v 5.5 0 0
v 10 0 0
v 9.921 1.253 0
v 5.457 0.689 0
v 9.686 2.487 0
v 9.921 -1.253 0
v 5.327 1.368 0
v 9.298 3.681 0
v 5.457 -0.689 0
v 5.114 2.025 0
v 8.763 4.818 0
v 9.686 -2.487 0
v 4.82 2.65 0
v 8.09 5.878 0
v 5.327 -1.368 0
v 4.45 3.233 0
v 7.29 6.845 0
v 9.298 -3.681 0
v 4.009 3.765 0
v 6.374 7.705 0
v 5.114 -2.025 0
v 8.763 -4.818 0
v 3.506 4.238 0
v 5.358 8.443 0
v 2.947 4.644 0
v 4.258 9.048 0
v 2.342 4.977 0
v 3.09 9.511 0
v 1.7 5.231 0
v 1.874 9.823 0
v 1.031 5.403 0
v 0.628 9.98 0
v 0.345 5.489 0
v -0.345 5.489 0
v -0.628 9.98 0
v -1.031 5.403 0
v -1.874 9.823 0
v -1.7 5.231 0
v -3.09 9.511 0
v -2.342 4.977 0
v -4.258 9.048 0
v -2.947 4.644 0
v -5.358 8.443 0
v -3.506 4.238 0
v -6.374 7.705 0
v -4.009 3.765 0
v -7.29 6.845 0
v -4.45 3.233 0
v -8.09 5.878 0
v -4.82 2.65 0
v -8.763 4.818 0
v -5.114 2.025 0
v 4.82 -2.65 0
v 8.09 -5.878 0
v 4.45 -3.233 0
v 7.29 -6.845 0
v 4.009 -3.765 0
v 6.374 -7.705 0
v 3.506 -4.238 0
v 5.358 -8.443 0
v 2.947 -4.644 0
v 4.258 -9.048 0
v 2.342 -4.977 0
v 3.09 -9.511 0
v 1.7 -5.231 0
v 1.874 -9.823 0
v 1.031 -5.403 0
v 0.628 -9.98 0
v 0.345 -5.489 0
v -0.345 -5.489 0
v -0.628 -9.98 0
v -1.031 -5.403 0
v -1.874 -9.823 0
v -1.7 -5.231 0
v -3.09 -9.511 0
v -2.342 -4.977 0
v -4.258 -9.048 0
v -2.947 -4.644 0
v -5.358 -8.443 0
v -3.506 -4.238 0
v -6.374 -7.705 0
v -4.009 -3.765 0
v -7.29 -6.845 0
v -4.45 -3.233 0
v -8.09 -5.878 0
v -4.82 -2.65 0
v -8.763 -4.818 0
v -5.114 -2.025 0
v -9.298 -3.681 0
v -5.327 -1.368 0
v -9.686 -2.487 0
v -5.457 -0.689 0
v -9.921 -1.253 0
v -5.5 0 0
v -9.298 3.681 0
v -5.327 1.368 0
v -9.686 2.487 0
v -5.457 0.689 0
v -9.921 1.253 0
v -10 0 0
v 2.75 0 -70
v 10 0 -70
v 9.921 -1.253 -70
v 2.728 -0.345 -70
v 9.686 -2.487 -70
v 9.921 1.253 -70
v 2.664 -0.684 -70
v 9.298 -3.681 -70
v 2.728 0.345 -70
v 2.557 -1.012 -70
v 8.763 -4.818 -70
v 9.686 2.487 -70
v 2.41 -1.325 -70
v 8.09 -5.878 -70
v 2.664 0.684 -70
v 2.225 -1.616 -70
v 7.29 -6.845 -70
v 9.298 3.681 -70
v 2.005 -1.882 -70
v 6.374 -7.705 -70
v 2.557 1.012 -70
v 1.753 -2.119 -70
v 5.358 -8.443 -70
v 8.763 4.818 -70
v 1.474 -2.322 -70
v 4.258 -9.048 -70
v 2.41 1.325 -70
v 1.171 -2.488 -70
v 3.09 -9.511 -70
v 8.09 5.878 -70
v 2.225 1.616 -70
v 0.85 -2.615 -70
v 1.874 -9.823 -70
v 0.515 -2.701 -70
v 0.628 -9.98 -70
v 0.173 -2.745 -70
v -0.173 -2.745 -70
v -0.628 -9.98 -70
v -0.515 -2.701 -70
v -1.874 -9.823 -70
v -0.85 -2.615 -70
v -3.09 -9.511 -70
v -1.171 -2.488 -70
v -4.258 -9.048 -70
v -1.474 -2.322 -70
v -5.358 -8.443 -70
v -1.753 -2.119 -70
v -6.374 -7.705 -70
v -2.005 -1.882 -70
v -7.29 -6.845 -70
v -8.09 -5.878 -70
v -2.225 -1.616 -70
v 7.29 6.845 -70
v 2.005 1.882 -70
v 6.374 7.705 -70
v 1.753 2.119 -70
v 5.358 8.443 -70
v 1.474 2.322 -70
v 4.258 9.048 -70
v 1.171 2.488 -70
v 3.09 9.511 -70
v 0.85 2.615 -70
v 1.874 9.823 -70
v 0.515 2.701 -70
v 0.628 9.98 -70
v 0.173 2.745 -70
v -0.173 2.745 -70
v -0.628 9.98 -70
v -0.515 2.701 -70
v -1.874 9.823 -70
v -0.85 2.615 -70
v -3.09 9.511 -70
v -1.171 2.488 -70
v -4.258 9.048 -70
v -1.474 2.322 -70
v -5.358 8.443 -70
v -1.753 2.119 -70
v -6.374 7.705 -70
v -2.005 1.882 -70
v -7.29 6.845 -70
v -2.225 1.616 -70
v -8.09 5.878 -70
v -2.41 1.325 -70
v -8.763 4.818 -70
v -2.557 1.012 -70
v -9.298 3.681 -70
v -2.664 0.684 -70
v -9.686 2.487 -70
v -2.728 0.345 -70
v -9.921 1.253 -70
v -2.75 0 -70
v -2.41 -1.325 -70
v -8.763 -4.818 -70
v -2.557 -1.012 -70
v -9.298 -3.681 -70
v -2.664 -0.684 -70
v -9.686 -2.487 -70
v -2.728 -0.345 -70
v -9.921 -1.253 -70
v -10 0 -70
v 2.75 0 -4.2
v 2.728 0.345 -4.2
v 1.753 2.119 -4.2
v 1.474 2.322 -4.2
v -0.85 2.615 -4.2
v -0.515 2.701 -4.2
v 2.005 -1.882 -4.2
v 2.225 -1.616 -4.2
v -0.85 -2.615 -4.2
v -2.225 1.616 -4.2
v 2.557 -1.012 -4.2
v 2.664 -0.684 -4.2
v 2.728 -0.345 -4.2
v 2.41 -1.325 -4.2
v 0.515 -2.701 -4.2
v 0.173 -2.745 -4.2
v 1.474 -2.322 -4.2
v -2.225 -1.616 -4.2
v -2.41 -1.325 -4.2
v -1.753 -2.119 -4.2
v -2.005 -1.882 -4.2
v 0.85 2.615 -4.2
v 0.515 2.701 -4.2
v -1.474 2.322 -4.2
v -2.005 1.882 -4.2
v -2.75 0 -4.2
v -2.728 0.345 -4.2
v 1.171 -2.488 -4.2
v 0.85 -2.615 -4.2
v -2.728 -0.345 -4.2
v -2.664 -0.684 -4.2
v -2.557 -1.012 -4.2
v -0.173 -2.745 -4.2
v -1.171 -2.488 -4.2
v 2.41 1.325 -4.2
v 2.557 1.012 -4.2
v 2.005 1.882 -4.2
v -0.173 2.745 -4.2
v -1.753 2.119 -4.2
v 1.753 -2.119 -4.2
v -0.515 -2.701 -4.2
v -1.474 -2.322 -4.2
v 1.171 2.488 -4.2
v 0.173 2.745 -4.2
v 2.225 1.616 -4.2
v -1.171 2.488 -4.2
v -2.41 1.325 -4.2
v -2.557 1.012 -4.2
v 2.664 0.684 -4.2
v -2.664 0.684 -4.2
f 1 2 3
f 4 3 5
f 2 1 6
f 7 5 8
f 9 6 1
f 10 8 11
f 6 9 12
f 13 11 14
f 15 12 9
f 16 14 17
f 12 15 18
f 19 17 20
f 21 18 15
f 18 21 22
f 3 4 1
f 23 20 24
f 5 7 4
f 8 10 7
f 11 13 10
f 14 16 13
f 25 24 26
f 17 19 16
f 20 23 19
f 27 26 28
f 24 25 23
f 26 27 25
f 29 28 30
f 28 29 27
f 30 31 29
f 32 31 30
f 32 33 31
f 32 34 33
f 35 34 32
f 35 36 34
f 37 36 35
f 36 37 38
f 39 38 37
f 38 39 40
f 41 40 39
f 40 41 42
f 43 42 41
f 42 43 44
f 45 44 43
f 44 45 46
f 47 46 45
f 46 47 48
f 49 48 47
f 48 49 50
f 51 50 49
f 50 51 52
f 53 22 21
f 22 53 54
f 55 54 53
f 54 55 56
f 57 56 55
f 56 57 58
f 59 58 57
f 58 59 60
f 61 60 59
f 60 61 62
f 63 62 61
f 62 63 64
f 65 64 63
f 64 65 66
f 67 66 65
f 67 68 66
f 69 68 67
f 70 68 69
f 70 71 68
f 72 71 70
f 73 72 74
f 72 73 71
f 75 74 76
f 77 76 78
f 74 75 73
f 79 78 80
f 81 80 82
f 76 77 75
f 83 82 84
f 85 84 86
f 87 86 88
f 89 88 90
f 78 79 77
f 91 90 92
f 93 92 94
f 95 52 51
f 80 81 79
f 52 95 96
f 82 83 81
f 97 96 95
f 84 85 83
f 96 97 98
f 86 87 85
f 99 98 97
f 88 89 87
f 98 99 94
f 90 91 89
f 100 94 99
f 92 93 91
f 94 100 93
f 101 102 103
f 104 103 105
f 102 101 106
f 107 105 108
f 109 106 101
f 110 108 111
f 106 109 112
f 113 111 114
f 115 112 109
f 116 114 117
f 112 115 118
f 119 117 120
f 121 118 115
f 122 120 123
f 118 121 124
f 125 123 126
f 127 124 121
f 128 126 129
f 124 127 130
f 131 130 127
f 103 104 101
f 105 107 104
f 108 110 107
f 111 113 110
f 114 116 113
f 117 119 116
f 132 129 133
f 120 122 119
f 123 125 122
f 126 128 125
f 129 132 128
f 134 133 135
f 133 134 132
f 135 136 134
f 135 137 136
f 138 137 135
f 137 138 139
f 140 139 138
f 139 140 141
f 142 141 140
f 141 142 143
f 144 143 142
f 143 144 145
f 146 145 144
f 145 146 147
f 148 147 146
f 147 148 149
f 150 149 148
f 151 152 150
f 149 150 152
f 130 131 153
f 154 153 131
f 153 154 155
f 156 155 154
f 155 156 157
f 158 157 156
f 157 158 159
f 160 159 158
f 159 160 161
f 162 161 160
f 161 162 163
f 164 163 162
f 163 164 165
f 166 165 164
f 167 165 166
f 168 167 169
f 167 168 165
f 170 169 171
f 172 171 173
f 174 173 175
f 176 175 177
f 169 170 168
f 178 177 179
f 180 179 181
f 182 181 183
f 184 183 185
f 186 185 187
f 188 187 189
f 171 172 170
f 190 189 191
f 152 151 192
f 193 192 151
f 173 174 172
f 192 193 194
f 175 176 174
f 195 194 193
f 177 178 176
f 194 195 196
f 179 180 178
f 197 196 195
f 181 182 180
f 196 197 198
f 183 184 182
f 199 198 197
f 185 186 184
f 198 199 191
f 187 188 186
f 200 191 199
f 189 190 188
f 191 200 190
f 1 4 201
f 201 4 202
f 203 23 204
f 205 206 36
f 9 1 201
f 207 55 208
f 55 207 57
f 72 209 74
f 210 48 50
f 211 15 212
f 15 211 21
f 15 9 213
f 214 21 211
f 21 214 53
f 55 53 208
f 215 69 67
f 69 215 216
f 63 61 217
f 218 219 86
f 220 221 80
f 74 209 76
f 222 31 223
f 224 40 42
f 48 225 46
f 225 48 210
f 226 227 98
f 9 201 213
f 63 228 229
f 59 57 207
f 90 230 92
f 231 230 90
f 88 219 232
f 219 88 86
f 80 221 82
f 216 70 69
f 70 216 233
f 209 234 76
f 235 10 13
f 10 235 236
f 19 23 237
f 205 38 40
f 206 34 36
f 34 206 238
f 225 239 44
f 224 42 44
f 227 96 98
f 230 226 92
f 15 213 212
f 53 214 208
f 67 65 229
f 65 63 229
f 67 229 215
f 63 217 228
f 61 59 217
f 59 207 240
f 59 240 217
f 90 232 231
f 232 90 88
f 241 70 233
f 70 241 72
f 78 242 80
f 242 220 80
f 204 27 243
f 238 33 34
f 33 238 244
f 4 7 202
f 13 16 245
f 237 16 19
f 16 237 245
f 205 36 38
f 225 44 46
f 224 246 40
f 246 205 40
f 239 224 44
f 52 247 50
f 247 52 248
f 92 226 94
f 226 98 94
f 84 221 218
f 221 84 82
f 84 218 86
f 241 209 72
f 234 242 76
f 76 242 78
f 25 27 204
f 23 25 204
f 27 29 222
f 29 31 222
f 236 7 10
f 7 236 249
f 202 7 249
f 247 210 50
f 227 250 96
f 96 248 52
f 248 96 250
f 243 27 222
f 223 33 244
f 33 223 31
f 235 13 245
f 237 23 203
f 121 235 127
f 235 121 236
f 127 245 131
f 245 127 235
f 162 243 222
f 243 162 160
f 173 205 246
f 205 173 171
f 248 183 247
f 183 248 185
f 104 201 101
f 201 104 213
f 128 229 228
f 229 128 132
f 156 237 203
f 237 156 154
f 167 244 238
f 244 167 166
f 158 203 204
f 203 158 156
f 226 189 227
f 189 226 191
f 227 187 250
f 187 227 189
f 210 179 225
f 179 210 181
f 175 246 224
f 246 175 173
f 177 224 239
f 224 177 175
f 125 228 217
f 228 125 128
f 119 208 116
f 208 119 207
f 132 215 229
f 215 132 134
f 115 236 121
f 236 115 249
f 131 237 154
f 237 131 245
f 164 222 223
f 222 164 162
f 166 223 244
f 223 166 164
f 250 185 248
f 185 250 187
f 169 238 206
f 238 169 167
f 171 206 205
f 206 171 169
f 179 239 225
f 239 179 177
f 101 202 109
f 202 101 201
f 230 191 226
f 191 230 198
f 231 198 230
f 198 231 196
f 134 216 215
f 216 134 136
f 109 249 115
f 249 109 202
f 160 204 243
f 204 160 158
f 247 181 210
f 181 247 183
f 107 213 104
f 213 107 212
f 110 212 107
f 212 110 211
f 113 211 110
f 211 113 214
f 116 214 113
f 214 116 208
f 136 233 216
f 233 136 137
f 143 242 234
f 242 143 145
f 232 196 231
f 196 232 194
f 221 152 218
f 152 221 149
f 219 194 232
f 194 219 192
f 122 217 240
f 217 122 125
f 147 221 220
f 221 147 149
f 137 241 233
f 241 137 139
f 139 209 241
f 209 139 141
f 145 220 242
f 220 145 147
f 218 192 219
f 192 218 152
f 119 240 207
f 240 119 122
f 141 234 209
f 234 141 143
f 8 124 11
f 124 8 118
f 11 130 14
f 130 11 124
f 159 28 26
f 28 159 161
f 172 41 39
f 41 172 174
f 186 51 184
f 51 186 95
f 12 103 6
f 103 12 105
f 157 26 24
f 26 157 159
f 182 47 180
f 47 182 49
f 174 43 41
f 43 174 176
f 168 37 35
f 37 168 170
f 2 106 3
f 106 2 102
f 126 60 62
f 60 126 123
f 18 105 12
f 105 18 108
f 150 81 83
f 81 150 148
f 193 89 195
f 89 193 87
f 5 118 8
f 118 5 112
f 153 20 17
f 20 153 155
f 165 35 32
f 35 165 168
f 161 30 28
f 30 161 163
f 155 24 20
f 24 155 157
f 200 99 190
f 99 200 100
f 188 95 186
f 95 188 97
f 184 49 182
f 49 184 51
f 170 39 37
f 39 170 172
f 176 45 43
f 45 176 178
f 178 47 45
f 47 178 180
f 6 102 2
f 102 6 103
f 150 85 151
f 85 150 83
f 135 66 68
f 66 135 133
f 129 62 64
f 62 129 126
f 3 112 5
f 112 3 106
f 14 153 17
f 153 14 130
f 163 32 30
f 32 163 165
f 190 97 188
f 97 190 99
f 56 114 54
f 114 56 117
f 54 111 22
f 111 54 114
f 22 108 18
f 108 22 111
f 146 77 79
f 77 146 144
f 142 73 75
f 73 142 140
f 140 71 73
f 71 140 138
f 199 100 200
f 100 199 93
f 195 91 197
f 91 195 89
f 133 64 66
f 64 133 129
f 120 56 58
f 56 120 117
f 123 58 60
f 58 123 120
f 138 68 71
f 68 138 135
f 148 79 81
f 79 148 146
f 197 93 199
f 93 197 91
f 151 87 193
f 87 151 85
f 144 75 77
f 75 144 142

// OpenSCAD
$fn = 50;


difference() {
	union() {
		translate(v = [0, 0, -70.0000000000]) {
			cylinder(h = 70, r = 10.0000000000);
		}
		cylinder(h = 0, r = 16.0000000000);
	}
	union() {
		translate(v = [0, 0, 0]) {
			rotate(a = [0, 0, 0]) {
				difference() {
					union() {
						#translate(v = [0, 0, -70.0000000000]) {
							cylinder(h = 70, r = 2.2500000000);
						}
						#translate(v = [0, 0, -4.2000000000]) {
							cylinder(h = 4.2000000000, r = 10.0000000000, r1 = 2.7500000000, r2 = 5.5000000000);
						}
						#translate(v = [0, 0, -70.0000000000]) {
							cylinder(h = 70, r = 2.7500000000);
						}
						#translate(v = [0, 0, -70.0000000000]) {
							cylinder(h = 70, r = 2.2500000000);
						}
					}
					union();
				}
			}
		}
	}
}
